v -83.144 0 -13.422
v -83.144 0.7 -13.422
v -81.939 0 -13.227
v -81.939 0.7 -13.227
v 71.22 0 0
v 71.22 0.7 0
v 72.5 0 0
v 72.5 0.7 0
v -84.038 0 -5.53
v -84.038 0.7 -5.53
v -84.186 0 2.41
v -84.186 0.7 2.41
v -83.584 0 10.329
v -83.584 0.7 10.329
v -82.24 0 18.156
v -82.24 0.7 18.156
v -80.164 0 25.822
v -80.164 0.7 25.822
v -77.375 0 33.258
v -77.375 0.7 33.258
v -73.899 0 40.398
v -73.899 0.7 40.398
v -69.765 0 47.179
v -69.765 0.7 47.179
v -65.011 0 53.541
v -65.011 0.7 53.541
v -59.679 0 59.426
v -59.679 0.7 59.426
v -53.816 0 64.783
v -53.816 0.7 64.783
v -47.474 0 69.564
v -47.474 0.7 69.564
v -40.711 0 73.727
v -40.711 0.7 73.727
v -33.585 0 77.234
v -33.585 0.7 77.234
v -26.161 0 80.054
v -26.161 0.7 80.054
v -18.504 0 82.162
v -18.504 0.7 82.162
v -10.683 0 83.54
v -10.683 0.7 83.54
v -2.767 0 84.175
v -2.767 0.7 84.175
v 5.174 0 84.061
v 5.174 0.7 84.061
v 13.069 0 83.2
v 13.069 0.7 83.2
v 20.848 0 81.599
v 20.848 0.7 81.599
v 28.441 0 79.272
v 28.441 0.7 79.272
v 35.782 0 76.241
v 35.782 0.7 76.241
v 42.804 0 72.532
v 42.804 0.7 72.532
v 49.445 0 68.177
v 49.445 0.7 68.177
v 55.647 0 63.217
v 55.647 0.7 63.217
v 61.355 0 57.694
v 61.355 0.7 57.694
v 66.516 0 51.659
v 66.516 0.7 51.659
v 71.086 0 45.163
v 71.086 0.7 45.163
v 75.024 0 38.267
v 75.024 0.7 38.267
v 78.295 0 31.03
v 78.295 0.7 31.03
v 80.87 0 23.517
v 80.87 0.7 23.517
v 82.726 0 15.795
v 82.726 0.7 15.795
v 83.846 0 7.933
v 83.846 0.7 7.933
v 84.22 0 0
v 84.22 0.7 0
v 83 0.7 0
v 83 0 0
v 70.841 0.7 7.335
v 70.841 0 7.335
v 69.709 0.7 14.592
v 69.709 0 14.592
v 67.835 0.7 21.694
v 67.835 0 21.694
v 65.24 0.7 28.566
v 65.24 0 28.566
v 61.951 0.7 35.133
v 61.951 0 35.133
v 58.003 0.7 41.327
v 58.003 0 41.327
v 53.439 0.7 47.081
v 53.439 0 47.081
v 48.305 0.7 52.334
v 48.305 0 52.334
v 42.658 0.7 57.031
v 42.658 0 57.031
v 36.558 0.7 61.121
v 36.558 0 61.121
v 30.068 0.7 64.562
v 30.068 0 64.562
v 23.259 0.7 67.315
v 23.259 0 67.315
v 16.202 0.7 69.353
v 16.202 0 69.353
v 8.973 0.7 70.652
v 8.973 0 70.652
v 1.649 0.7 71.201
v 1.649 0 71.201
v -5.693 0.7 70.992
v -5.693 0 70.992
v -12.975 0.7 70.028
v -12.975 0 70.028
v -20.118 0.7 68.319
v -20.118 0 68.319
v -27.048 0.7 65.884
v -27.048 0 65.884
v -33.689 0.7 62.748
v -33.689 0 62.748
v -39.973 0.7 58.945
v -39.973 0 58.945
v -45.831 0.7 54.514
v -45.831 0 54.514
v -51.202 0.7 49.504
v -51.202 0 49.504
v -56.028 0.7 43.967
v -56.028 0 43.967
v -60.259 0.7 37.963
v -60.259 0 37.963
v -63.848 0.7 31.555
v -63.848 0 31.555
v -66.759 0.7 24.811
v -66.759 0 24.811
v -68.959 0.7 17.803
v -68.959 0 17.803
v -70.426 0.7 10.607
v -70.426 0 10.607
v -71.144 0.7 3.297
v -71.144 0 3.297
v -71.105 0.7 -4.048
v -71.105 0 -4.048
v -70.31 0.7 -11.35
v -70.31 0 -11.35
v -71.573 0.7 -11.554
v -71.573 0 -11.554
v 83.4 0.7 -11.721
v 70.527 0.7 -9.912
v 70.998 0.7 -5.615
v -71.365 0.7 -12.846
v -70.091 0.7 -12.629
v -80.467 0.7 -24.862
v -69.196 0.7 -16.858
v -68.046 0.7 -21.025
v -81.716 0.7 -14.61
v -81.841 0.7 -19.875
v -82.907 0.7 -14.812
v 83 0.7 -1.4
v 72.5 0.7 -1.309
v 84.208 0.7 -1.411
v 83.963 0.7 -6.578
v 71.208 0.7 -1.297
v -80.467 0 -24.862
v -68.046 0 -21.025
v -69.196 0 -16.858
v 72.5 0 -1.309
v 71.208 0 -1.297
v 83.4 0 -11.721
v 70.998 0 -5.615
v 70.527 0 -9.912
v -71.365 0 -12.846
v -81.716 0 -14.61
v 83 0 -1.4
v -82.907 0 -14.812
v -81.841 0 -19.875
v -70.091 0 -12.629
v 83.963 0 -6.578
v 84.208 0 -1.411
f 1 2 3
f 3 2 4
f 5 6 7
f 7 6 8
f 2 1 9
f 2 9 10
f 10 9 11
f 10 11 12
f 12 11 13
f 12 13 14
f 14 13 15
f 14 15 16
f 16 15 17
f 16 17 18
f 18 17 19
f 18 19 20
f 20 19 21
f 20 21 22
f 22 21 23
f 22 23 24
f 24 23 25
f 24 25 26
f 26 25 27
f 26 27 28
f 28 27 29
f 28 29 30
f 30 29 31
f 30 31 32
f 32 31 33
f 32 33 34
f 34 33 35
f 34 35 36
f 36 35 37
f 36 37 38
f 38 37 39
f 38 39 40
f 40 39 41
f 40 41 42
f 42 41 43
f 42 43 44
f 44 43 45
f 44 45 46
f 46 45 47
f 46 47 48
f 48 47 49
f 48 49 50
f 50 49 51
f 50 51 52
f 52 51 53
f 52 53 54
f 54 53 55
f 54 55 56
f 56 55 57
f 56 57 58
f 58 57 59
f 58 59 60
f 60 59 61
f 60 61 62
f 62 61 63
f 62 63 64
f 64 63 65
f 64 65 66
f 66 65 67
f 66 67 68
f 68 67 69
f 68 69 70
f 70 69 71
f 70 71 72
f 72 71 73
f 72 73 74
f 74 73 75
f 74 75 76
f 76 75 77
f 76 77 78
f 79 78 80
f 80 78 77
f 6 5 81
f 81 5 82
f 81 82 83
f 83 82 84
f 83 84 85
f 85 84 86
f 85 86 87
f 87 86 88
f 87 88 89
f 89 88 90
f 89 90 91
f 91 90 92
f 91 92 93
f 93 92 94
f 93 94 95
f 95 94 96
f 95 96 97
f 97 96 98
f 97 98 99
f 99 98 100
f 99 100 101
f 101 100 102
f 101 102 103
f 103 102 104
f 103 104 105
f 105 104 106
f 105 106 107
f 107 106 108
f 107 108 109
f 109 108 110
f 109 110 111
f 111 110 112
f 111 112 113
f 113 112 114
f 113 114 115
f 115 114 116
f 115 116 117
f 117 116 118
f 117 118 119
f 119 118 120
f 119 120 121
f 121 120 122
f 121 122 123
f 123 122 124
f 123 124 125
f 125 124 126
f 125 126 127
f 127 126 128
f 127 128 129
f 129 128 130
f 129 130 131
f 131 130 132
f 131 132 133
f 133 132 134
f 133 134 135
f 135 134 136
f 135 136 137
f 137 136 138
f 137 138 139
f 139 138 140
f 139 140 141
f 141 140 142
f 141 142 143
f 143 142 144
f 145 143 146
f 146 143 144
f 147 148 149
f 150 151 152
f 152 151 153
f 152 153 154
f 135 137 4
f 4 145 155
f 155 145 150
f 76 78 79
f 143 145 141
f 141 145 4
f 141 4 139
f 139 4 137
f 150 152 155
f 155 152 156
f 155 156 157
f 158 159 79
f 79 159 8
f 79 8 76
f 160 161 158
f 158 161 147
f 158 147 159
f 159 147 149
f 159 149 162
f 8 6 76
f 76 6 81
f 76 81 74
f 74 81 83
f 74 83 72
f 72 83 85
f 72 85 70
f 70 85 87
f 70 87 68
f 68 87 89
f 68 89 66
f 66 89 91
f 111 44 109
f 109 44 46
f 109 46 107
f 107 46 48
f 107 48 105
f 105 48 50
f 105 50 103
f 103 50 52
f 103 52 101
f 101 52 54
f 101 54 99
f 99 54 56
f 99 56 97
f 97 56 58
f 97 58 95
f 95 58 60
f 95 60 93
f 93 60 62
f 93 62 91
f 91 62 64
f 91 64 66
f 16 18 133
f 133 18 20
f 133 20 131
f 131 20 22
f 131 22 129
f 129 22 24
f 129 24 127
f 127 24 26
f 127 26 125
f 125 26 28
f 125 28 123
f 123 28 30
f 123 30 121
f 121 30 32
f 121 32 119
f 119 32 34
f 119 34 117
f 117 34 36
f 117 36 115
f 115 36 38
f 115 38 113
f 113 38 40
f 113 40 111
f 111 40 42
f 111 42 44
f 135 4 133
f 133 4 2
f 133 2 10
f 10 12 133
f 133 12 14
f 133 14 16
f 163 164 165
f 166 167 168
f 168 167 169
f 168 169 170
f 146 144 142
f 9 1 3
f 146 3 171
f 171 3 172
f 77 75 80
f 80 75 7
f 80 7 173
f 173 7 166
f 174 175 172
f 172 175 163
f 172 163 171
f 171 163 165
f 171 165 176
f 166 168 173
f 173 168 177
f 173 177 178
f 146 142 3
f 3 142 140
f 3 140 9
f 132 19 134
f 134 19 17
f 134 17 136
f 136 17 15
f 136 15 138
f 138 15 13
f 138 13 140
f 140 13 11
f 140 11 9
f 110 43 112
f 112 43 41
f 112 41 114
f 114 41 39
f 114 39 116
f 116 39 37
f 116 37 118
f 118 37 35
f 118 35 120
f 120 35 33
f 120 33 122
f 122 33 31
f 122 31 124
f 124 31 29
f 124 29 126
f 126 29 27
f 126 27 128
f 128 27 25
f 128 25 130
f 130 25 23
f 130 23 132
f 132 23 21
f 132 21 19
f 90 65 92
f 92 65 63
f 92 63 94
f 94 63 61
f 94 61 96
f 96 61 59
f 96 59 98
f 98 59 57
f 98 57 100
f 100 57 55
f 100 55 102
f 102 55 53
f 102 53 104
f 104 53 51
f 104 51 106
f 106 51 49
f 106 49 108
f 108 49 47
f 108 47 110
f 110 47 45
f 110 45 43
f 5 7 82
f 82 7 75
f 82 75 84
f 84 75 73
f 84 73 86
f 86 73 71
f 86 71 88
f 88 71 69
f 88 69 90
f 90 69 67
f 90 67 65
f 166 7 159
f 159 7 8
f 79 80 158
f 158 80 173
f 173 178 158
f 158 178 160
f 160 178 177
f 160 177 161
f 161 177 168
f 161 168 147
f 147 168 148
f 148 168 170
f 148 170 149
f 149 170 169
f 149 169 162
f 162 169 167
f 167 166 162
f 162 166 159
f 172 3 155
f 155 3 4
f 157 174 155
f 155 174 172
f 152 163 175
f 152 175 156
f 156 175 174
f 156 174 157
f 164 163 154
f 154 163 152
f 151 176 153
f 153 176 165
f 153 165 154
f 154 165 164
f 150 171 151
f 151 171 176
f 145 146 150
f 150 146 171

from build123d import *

# Parameters (mm, degrees)
BOSS_EXTRUDE1_DEPTH = 0.7
NOTCH_DEPTH         = 0.7


with BuildPart() as part:
    # Sketch3 → Boss-Extrude1 (new body)
    with BuildSketch(Plane(origin=(0, 0, 0), x_dir=(1, 0, 0), z_dir=(0, 1, 0))):
        with BuildLine():
            Line((-70.309797243, 11.349925621), (-83.143655207, 13.421661553))
            ThreePointArc((-83.143655207, 13.421661553), (-6.732375453, -83.950482552), (84.22, 0))
            Line((84.22, 0), (71.22, 0))
            ThreePointArc((71.22, 0), (-5.693181902, -70.992084628), (-70.309797243, 11.349925621))
        make_face()
    extrude(amount=BOSS_EXTRUDE1_DEPTH)

    # Sketch4 → notch (add)
    with BuildSketch(Plane(origin=(0, 0, 0), x_dir=(1, 0, 0), z_dir=(0, 1, 0))):
        Polygon((83, 1.400205806), (72.5, 1.308573694), (72.5, 0), (83, 0), align=None)
        with BuildLine():
            Line((83.400376749, 11.721158563), (70.526891856, 9.91190825))
            ThreePointArc((70.526891856, 9.91190825), (70.998315276, 5.614946842), (71.208183604, 1.297300183))
            Line((71.208183604, 1.297300183), (72.5, 1.308573694))
            Line((72.5, 1.308573694), (83, 1.400205806))
            Line((83, 1.400205806), (84.208183604, 1.410749464))
            ThreePointArc((84.208183604, 1.410749464), (83.962691178, 6.578365305), (83.400376749, 11.721158563))
        make_face()
    notch = extrude(amount=NOTCH_DEPTH)

    # Mirror1: notch across plane
    add(notch.mirror(Plane(origin=(0, 0, 0), x_dir=(-0.07993796548331146, 0, 0.9967998403262256), z_dir=(-0.9967998403262257, 0, -0.07993796548331145))))


solid = part.part
